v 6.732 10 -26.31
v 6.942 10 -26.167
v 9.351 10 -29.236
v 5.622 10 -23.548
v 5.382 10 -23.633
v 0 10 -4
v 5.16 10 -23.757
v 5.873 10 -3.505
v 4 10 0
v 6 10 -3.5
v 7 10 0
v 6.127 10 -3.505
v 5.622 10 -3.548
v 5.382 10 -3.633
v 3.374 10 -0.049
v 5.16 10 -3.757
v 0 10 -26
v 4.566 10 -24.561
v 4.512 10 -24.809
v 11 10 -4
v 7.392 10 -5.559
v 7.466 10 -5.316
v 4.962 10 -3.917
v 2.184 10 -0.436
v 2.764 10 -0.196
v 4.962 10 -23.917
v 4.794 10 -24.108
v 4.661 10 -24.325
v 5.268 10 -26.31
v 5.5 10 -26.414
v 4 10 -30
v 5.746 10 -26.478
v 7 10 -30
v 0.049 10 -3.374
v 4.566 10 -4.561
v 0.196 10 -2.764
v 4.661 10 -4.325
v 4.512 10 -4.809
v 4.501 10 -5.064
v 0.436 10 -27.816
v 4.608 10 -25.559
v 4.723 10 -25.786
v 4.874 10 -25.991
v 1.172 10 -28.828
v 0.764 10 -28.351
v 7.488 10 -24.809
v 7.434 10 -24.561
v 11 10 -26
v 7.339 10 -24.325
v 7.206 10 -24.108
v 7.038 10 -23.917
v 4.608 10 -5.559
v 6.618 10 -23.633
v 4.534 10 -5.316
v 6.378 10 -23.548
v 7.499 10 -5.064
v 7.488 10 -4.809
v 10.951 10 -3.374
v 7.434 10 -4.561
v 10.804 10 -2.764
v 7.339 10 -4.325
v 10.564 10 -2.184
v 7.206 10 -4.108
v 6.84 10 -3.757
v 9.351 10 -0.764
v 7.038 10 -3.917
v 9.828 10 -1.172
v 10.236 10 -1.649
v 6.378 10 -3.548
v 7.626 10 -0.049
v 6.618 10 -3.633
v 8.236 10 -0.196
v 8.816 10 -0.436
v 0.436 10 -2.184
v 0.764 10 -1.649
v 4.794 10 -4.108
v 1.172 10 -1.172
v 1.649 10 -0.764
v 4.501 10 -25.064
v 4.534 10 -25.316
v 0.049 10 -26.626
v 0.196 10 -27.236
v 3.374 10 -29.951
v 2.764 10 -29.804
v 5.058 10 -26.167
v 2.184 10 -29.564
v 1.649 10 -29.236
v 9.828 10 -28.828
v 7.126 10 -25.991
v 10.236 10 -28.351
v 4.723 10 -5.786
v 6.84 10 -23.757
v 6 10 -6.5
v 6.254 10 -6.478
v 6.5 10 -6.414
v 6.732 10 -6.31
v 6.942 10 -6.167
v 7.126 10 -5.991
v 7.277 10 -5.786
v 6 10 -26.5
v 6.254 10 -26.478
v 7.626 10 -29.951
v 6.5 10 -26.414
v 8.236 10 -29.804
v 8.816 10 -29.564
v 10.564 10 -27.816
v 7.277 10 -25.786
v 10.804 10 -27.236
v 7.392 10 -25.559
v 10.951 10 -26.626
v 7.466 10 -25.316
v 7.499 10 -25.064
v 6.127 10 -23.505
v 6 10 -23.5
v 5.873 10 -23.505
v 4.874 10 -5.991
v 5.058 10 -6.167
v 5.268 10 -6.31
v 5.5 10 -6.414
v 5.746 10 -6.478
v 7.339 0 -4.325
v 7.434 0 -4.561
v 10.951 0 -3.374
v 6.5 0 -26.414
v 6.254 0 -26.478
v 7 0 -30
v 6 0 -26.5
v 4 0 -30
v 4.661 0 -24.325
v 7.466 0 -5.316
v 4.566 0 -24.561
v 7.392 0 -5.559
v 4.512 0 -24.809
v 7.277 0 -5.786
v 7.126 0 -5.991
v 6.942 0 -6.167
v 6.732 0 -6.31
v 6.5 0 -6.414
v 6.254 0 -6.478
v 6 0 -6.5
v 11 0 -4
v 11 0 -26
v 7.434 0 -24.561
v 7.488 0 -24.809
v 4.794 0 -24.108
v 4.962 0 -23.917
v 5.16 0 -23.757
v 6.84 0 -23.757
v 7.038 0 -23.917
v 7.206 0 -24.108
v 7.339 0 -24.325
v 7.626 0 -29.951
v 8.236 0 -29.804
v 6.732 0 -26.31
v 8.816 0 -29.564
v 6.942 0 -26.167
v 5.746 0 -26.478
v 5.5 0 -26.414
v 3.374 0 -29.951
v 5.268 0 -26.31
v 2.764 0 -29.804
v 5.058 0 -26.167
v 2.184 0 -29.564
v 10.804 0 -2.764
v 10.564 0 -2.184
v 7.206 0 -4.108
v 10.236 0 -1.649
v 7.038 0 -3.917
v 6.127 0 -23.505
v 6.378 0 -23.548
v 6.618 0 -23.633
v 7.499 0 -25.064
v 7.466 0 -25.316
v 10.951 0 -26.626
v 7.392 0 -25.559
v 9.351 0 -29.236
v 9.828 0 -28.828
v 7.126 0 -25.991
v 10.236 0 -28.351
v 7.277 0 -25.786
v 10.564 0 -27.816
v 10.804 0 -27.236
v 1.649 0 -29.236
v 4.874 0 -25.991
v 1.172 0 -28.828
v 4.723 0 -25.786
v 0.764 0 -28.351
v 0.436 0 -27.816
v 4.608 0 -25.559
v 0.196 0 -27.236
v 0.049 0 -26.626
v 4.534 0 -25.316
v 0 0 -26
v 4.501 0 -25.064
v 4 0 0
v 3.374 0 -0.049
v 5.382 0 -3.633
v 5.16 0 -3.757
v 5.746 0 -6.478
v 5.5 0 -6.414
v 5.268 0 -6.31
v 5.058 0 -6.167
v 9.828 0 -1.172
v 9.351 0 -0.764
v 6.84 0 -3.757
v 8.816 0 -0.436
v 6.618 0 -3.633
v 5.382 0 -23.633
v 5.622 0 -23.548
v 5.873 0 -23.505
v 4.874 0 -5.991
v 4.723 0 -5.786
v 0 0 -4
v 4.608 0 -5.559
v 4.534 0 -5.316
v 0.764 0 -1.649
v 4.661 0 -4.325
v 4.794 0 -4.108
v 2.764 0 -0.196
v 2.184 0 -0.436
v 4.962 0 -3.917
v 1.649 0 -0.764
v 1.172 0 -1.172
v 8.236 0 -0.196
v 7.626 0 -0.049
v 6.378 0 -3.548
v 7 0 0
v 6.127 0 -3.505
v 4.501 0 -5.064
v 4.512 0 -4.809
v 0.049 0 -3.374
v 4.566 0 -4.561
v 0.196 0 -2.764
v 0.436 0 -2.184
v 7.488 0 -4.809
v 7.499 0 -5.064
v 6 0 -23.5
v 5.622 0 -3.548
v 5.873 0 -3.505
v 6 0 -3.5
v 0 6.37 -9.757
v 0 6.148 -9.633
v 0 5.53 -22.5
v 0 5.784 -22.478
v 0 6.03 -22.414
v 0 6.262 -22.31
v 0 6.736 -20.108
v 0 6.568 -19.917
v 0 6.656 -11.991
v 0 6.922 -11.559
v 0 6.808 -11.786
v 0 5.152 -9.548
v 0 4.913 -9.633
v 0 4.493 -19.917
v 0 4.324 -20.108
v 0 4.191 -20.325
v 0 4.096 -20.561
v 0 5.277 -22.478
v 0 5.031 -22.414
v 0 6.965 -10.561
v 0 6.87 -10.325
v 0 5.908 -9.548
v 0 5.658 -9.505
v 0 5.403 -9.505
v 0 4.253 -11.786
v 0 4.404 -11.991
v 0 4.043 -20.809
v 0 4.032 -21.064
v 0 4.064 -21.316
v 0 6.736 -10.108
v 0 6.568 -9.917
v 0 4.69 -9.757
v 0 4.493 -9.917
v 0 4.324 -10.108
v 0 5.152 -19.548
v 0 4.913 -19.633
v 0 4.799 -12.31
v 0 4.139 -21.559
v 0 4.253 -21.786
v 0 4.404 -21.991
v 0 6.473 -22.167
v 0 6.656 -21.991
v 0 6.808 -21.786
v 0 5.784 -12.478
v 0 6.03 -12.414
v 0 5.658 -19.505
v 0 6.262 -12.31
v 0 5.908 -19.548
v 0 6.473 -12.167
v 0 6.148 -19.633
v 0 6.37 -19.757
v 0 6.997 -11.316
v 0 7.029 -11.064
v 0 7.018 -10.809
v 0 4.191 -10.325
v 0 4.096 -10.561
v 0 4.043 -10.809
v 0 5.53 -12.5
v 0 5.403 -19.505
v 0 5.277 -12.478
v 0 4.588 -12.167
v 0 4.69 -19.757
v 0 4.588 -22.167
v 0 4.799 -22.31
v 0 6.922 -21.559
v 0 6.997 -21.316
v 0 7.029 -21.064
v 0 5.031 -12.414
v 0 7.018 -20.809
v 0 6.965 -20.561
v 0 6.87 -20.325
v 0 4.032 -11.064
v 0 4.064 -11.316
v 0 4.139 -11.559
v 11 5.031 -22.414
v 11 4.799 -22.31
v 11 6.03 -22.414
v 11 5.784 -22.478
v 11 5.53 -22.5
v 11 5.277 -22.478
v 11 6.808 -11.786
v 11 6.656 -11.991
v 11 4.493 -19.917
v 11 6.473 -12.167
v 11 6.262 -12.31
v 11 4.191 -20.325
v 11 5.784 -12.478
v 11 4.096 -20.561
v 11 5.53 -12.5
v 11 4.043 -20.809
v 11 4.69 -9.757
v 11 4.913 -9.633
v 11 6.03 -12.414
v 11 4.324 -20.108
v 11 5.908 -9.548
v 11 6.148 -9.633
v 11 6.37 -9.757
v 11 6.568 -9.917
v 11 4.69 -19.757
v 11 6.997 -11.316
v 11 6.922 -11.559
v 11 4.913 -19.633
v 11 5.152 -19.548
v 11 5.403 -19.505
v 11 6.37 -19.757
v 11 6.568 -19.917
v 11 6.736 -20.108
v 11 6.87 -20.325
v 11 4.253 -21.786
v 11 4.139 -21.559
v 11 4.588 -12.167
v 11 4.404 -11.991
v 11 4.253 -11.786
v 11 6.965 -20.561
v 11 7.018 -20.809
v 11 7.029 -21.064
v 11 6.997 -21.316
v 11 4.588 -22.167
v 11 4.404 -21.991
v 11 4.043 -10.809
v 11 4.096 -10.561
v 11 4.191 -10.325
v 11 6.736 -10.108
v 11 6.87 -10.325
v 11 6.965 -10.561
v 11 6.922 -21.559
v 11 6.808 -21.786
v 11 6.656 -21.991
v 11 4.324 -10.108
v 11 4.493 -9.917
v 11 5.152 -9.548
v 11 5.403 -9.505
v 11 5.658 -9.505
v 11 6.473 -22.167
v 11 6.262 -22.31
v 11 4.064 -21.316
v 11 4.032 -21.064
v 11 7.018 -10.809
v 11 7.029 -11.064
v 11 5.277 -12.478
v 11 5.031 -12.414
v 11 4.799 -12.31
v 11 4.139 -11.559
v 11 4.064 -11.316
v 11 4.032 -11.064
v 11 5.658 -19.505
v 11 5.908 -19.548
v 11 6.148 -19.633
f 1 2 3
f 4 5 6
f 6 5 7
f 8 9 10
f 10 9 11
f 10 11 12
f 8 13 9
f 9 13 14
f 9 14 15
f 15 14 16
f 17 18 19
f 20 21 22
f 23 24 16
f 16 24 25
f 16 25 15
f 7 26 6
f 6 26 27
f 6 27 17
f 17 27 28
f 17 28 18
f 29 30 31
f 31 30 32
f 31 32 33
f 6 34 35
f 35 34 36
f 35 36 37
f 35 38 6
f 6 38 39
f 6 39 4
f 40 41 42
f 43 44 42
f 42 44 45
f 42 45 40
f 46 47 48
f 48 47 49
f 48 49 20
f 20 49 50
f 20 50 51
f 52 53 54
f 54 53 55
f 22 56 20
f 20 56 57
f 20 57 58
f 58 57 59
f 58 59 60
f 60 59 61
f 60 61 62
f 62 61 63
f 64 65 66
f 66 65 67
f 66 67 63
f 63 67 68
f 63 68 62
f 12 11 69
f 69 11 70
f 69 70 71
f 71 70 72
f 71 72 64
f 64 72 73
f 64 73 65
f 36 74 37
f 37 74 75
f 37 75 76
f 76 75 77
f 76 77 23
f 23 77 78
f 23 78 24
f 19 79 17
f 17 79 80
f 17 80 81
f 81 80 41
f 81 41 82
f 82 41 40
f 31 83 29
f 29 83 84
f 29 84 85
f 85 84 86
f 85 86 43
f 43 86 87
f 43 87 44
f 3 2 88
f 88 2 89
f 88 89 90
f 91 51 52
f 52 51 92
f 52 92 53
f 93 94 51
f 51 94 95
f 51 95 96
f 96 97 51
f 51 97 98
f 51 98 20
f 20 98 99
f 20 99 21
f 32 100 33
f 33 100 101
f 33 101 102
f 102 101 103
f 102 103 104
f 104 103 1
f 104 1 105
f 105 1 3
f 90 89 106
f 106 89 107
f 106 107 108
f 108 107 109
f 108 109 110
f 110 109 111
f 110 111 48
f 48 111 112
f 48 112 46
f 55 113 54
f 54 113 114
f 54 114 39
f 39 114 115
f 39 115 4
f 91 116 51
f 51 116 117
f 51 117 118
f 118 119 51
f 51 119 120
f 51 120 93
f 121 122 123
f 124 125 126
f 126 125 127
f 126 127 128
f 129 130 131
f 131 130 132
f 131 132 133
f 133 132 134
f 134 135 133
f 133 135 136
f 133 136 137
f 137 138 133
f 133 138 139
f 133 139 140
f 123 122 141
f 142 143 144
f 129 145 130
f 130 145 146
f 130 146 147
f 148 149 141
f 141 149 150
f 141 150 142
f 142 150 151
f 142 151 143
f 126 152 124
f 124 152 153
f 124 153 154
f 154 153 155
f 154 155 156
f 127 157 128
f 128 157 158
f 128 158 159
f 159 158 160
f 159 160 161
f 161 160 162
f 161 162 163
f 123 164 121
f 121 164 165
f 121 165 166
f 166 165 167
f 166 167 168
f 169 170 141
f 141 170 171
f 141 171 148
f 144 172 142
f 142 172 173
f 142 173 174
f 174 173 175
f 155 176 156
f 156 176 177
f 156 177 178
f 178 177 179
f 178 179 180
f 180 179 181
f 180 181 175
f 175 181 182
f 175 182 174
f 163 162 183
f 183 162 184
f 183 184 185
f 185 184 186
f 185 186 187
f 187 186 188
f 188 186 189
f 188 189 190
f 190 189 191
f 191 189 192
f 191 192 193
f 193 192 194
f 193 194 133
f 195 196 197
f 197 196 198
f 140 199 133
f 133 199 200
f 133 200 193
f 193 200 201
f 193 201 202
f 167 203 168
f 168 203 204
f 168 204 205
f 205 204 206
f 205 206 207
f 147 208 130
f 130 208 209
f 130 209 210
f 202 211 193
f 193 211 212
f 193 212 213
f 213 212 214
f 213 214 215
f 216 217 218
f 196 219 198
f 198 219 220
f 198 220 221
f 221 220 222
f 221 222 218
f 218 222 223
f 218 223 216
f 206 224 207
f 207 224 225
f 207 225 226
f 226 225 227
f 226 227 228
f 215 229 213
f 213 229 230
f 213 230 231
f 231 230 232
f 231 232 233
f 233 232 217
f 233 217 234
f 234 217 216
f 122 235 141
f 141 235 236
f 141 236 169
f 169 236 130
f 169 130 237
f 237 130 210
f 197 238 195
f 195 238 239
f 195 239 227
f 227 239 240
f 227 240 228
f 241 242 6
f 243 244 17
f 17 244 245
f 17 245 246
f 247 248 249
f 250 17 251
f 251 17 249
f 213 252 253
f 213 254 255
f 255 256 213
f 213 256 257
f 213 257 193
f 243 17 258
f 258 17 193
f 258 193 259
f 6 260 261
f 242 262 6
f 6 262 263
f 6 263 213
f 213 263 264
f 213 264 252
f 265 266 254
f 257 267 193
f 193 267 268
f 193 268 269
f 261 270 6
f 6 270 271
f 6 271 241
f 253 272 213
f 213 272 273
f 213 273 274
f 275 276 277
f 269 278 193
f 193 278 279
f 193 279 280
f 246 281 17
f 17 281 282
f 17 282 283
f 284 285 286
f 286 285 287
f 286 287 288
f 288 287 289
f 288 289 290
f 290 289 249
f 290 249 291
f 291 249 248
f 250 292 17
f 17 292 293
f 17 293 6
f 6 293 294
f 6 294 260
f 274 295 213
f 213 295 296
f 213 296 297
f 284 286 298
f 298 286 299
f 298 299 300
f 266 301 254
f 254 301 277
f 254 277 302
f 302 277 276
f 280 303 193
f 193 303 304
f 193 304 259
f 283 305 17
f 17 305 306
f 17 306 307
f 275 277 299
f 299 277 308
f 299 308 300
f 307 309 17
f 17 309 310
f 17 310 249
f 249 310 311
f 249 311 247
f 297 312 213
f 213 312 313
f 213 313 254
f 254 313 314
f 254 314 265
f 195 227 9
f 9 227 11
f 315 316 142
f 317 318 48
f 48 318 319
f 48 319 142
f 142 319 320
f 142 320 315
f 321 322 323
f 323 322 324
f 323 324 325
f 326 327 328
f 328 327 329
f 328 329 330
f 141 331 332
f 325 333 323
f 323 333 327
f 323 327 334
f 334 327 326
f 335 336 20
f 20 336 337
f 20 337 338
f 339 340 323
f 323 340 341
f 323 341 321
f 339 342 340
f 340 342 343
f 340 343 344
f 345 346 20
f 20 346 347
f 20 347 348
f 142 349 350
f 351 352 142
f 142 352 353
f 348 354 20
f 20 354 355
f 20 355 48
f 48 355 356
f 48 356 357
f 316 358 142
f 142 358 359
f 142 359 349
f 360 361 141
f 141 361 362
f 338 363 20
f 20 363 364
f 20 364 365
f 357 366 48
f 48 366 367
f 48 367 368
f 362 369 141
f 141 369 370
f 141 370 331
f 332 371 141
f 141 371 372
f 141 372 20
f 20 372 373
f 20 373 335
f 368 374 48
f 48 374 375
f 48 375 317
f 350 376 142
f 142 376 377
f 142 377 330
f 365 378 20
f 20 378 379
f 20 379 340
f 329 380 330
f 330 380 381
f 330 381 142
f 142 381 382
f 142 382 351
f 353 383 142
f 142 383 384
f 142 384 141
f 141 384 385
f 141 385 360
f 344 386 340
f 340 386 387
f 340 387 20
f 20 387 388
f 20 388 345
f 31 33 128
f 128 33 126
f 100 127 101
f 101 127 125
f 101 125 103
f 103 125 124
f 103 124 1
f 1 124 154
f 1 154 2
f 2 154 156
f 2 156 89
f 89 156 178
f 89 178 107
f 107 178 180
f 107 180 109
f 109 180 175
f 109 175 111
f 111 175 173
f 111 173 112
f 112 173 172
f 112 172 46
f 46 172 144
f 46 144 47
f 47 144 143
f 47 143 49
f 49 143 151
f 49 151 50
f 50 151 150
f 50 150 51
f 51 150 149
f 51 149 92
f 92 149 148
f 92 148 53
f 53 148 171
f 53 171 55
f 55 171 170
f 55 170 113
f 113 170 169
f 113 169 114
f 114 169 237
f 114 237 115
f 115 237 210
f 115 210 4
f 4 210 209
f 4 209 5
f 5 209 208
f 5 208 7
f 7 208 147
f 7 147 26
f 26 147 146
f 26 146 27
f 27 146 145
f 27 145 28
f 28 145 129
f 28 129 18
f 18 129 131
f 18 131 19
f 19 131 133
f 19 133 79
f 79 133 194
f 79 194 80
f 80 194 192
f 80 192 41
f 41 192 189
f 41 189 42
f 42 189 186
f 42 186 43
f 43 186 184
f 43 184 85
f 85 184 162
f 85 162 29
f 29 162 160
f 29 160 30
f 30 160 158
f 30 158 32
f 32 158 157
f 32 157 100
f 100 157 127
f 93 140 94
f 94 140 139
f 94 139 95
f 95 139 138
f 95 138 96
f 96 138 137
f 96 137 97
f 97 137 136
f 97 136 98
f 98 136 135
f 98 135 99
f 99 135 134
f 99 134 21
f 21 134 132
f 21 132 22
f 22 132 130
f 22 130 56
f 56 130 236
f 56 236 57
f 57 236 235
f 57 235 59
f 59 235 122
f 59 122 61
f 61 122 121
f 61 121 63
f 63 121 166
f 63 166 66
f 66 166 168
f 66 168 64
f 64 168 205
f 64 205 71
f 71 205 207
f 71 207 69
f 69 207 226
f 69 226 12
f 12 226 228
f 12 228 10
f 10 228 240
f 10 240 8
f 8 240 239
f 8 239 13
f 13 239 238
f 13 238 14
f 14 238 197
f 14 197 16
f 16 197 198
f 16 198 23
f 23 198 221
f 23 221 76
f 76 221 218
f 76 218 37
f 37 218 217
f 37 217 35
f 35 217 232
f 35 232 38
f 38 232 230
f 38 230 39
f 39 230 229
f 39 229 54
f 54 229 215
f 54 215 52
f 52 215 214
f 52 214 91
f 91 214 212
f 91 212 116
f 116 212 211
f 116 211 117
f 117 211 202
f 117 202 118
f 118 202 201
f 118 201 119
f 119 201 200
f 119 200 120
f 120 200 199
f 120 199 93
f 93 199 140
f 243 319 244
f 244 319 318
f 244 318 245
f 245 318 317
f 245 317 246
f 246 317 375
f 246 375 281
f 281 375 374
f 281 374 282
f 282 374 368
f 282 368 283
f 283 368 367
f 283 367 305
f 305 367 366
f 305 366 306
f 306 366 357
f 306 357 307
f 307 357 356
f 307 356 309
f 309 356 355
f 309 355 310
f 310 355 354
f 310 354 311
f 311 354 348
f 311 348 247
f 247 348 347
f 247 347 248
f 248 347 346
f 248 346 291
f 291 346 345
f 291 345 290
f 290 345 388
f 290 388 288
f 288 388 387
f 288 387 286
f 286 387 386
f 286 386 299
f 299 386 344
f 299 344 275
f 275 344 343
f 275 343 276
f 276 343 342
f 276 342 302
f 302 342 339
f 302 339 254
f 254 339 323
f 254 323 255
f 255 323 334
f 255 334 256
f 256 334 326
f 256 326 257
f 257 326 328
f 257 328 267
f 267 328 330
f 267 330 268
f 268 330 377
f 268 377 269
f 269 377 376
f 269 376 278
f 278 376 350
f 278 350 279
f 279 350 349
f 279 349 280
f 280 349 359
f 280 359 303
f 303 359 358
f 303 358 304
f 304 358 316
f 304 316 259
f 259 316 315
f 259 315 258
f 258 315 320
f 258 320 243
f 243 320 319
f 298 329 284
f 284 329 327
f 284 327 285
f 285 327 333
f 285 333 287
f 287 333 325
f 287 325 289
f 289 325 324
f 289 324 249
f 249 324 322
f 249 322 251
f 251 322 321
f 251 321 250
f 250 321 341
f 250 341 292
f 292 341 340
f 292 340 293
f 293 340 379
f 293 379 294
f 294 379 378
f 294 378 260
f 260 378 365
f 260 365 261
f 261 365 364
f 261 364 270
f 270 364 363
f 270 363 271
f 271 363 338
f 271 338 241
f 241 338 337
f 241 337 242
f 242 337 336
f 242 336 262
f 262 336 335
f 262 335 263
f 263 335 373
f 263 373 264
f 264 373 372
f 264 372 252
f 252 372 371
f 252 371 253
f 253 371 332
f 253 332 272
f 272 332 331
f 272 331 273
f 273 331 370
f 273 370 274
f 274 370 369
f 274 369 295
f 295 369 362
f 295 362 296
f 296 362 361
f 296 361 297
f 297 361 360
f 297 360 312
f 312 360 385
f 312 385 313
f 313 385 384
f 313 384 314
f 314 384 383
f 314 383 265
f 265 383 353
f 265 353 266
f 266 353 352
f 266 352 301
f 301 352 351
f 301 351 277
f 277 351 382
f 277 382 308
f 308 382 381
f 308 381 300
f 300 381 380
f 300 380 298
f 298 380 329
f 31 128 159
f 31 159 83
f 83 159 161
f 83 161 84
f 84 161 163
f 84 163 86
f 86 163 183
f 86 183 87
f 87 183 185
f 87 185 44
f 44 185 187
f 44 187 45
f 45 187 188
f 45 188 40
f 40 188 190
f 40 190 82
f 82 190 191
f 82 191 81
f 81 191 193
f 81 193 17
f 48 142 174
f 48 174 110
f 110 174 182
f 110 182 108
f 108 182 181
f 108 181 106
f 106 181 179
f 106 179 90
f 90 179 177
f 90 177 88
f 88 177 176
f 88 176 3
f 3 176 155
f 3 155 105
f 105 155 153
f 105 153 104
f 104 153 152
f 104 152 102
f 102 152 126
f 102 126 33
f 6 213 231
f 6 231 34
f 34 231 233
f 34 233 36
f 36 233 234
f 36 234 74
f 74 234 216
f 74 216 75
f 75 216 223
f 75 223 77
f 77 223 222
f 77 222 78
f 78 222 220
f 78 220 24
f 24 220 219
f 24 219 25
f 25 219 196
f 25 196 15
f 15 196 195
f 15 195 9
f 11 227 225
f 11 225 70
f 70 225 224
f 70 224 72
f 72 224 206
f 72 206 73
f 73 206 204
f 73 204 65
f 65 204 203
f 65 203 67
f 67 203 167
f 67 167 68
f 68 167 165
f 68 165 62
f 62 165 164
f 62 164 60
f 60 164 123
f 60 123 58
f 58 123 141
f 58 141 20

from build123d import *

# Parameters (mm, degrees)
SKETCH1_W           = 11
SKETCH1_H           = 30
SKETCH1_R           = 1.5
BOSS_EXTRUDE1_DEPTH = 10
SKETCH2_R           = 1.5
CUT_EXTRUDE1_DEPTH  = 34.481338086
FILLET1_R           = 4


with BuildPart() as part:
    # Sketch1 → Boss-Extrude1 (new body)
    with BuildSketch(Plane(origin=(0, 0, 0), x_dir=(1, 0, 0), z_dir=(0, 1, 0))):
        with Locations((5.5, 15)):
            Rectangle(SKETCH1_W, SKETCH1_H)
        with Locations(Location((6, 25, 0), (0, 0, 270))):
            Circle(SKETCH1_R, mode=Mode.SUBTRACT)
        with Locations(Location((6, 5, 0), (0, 0, 270))):
            Circle(SKETCH1_R, mode=Mode.SUBTRACT)
    extrude(amount=BOSS_EXTRUDE1_DEPTH)

    # Sketch2 → Cut-Extrude1 (cut, through all)
    with BuildSketch(Plane(origin=(11, 0, 0), x_dir=(0, 0, -1), z_dir=(1, 0, 0))):
        with Locations((11, 5.530453401)):
            Circle(SKETCH2_R)
        with Locations((21, 5.530453401)):
            Circle(SKETCH2_R)
    extrude(amount=-CUT_EXTRUDE1_DEPTH, mode=Mode.SUBTRACT)

    # Fillet1
    fillet1_edges = [part.edges().sort_by_distance(p)[0] for p in [
        (0, 5, -30),
        (11, 5, -30),
        (11, 5, 0),
        (0, 5, 0),
    ]]
    fillet(fillet1_edges, radius=FILLET1_R)


solid = part.part
